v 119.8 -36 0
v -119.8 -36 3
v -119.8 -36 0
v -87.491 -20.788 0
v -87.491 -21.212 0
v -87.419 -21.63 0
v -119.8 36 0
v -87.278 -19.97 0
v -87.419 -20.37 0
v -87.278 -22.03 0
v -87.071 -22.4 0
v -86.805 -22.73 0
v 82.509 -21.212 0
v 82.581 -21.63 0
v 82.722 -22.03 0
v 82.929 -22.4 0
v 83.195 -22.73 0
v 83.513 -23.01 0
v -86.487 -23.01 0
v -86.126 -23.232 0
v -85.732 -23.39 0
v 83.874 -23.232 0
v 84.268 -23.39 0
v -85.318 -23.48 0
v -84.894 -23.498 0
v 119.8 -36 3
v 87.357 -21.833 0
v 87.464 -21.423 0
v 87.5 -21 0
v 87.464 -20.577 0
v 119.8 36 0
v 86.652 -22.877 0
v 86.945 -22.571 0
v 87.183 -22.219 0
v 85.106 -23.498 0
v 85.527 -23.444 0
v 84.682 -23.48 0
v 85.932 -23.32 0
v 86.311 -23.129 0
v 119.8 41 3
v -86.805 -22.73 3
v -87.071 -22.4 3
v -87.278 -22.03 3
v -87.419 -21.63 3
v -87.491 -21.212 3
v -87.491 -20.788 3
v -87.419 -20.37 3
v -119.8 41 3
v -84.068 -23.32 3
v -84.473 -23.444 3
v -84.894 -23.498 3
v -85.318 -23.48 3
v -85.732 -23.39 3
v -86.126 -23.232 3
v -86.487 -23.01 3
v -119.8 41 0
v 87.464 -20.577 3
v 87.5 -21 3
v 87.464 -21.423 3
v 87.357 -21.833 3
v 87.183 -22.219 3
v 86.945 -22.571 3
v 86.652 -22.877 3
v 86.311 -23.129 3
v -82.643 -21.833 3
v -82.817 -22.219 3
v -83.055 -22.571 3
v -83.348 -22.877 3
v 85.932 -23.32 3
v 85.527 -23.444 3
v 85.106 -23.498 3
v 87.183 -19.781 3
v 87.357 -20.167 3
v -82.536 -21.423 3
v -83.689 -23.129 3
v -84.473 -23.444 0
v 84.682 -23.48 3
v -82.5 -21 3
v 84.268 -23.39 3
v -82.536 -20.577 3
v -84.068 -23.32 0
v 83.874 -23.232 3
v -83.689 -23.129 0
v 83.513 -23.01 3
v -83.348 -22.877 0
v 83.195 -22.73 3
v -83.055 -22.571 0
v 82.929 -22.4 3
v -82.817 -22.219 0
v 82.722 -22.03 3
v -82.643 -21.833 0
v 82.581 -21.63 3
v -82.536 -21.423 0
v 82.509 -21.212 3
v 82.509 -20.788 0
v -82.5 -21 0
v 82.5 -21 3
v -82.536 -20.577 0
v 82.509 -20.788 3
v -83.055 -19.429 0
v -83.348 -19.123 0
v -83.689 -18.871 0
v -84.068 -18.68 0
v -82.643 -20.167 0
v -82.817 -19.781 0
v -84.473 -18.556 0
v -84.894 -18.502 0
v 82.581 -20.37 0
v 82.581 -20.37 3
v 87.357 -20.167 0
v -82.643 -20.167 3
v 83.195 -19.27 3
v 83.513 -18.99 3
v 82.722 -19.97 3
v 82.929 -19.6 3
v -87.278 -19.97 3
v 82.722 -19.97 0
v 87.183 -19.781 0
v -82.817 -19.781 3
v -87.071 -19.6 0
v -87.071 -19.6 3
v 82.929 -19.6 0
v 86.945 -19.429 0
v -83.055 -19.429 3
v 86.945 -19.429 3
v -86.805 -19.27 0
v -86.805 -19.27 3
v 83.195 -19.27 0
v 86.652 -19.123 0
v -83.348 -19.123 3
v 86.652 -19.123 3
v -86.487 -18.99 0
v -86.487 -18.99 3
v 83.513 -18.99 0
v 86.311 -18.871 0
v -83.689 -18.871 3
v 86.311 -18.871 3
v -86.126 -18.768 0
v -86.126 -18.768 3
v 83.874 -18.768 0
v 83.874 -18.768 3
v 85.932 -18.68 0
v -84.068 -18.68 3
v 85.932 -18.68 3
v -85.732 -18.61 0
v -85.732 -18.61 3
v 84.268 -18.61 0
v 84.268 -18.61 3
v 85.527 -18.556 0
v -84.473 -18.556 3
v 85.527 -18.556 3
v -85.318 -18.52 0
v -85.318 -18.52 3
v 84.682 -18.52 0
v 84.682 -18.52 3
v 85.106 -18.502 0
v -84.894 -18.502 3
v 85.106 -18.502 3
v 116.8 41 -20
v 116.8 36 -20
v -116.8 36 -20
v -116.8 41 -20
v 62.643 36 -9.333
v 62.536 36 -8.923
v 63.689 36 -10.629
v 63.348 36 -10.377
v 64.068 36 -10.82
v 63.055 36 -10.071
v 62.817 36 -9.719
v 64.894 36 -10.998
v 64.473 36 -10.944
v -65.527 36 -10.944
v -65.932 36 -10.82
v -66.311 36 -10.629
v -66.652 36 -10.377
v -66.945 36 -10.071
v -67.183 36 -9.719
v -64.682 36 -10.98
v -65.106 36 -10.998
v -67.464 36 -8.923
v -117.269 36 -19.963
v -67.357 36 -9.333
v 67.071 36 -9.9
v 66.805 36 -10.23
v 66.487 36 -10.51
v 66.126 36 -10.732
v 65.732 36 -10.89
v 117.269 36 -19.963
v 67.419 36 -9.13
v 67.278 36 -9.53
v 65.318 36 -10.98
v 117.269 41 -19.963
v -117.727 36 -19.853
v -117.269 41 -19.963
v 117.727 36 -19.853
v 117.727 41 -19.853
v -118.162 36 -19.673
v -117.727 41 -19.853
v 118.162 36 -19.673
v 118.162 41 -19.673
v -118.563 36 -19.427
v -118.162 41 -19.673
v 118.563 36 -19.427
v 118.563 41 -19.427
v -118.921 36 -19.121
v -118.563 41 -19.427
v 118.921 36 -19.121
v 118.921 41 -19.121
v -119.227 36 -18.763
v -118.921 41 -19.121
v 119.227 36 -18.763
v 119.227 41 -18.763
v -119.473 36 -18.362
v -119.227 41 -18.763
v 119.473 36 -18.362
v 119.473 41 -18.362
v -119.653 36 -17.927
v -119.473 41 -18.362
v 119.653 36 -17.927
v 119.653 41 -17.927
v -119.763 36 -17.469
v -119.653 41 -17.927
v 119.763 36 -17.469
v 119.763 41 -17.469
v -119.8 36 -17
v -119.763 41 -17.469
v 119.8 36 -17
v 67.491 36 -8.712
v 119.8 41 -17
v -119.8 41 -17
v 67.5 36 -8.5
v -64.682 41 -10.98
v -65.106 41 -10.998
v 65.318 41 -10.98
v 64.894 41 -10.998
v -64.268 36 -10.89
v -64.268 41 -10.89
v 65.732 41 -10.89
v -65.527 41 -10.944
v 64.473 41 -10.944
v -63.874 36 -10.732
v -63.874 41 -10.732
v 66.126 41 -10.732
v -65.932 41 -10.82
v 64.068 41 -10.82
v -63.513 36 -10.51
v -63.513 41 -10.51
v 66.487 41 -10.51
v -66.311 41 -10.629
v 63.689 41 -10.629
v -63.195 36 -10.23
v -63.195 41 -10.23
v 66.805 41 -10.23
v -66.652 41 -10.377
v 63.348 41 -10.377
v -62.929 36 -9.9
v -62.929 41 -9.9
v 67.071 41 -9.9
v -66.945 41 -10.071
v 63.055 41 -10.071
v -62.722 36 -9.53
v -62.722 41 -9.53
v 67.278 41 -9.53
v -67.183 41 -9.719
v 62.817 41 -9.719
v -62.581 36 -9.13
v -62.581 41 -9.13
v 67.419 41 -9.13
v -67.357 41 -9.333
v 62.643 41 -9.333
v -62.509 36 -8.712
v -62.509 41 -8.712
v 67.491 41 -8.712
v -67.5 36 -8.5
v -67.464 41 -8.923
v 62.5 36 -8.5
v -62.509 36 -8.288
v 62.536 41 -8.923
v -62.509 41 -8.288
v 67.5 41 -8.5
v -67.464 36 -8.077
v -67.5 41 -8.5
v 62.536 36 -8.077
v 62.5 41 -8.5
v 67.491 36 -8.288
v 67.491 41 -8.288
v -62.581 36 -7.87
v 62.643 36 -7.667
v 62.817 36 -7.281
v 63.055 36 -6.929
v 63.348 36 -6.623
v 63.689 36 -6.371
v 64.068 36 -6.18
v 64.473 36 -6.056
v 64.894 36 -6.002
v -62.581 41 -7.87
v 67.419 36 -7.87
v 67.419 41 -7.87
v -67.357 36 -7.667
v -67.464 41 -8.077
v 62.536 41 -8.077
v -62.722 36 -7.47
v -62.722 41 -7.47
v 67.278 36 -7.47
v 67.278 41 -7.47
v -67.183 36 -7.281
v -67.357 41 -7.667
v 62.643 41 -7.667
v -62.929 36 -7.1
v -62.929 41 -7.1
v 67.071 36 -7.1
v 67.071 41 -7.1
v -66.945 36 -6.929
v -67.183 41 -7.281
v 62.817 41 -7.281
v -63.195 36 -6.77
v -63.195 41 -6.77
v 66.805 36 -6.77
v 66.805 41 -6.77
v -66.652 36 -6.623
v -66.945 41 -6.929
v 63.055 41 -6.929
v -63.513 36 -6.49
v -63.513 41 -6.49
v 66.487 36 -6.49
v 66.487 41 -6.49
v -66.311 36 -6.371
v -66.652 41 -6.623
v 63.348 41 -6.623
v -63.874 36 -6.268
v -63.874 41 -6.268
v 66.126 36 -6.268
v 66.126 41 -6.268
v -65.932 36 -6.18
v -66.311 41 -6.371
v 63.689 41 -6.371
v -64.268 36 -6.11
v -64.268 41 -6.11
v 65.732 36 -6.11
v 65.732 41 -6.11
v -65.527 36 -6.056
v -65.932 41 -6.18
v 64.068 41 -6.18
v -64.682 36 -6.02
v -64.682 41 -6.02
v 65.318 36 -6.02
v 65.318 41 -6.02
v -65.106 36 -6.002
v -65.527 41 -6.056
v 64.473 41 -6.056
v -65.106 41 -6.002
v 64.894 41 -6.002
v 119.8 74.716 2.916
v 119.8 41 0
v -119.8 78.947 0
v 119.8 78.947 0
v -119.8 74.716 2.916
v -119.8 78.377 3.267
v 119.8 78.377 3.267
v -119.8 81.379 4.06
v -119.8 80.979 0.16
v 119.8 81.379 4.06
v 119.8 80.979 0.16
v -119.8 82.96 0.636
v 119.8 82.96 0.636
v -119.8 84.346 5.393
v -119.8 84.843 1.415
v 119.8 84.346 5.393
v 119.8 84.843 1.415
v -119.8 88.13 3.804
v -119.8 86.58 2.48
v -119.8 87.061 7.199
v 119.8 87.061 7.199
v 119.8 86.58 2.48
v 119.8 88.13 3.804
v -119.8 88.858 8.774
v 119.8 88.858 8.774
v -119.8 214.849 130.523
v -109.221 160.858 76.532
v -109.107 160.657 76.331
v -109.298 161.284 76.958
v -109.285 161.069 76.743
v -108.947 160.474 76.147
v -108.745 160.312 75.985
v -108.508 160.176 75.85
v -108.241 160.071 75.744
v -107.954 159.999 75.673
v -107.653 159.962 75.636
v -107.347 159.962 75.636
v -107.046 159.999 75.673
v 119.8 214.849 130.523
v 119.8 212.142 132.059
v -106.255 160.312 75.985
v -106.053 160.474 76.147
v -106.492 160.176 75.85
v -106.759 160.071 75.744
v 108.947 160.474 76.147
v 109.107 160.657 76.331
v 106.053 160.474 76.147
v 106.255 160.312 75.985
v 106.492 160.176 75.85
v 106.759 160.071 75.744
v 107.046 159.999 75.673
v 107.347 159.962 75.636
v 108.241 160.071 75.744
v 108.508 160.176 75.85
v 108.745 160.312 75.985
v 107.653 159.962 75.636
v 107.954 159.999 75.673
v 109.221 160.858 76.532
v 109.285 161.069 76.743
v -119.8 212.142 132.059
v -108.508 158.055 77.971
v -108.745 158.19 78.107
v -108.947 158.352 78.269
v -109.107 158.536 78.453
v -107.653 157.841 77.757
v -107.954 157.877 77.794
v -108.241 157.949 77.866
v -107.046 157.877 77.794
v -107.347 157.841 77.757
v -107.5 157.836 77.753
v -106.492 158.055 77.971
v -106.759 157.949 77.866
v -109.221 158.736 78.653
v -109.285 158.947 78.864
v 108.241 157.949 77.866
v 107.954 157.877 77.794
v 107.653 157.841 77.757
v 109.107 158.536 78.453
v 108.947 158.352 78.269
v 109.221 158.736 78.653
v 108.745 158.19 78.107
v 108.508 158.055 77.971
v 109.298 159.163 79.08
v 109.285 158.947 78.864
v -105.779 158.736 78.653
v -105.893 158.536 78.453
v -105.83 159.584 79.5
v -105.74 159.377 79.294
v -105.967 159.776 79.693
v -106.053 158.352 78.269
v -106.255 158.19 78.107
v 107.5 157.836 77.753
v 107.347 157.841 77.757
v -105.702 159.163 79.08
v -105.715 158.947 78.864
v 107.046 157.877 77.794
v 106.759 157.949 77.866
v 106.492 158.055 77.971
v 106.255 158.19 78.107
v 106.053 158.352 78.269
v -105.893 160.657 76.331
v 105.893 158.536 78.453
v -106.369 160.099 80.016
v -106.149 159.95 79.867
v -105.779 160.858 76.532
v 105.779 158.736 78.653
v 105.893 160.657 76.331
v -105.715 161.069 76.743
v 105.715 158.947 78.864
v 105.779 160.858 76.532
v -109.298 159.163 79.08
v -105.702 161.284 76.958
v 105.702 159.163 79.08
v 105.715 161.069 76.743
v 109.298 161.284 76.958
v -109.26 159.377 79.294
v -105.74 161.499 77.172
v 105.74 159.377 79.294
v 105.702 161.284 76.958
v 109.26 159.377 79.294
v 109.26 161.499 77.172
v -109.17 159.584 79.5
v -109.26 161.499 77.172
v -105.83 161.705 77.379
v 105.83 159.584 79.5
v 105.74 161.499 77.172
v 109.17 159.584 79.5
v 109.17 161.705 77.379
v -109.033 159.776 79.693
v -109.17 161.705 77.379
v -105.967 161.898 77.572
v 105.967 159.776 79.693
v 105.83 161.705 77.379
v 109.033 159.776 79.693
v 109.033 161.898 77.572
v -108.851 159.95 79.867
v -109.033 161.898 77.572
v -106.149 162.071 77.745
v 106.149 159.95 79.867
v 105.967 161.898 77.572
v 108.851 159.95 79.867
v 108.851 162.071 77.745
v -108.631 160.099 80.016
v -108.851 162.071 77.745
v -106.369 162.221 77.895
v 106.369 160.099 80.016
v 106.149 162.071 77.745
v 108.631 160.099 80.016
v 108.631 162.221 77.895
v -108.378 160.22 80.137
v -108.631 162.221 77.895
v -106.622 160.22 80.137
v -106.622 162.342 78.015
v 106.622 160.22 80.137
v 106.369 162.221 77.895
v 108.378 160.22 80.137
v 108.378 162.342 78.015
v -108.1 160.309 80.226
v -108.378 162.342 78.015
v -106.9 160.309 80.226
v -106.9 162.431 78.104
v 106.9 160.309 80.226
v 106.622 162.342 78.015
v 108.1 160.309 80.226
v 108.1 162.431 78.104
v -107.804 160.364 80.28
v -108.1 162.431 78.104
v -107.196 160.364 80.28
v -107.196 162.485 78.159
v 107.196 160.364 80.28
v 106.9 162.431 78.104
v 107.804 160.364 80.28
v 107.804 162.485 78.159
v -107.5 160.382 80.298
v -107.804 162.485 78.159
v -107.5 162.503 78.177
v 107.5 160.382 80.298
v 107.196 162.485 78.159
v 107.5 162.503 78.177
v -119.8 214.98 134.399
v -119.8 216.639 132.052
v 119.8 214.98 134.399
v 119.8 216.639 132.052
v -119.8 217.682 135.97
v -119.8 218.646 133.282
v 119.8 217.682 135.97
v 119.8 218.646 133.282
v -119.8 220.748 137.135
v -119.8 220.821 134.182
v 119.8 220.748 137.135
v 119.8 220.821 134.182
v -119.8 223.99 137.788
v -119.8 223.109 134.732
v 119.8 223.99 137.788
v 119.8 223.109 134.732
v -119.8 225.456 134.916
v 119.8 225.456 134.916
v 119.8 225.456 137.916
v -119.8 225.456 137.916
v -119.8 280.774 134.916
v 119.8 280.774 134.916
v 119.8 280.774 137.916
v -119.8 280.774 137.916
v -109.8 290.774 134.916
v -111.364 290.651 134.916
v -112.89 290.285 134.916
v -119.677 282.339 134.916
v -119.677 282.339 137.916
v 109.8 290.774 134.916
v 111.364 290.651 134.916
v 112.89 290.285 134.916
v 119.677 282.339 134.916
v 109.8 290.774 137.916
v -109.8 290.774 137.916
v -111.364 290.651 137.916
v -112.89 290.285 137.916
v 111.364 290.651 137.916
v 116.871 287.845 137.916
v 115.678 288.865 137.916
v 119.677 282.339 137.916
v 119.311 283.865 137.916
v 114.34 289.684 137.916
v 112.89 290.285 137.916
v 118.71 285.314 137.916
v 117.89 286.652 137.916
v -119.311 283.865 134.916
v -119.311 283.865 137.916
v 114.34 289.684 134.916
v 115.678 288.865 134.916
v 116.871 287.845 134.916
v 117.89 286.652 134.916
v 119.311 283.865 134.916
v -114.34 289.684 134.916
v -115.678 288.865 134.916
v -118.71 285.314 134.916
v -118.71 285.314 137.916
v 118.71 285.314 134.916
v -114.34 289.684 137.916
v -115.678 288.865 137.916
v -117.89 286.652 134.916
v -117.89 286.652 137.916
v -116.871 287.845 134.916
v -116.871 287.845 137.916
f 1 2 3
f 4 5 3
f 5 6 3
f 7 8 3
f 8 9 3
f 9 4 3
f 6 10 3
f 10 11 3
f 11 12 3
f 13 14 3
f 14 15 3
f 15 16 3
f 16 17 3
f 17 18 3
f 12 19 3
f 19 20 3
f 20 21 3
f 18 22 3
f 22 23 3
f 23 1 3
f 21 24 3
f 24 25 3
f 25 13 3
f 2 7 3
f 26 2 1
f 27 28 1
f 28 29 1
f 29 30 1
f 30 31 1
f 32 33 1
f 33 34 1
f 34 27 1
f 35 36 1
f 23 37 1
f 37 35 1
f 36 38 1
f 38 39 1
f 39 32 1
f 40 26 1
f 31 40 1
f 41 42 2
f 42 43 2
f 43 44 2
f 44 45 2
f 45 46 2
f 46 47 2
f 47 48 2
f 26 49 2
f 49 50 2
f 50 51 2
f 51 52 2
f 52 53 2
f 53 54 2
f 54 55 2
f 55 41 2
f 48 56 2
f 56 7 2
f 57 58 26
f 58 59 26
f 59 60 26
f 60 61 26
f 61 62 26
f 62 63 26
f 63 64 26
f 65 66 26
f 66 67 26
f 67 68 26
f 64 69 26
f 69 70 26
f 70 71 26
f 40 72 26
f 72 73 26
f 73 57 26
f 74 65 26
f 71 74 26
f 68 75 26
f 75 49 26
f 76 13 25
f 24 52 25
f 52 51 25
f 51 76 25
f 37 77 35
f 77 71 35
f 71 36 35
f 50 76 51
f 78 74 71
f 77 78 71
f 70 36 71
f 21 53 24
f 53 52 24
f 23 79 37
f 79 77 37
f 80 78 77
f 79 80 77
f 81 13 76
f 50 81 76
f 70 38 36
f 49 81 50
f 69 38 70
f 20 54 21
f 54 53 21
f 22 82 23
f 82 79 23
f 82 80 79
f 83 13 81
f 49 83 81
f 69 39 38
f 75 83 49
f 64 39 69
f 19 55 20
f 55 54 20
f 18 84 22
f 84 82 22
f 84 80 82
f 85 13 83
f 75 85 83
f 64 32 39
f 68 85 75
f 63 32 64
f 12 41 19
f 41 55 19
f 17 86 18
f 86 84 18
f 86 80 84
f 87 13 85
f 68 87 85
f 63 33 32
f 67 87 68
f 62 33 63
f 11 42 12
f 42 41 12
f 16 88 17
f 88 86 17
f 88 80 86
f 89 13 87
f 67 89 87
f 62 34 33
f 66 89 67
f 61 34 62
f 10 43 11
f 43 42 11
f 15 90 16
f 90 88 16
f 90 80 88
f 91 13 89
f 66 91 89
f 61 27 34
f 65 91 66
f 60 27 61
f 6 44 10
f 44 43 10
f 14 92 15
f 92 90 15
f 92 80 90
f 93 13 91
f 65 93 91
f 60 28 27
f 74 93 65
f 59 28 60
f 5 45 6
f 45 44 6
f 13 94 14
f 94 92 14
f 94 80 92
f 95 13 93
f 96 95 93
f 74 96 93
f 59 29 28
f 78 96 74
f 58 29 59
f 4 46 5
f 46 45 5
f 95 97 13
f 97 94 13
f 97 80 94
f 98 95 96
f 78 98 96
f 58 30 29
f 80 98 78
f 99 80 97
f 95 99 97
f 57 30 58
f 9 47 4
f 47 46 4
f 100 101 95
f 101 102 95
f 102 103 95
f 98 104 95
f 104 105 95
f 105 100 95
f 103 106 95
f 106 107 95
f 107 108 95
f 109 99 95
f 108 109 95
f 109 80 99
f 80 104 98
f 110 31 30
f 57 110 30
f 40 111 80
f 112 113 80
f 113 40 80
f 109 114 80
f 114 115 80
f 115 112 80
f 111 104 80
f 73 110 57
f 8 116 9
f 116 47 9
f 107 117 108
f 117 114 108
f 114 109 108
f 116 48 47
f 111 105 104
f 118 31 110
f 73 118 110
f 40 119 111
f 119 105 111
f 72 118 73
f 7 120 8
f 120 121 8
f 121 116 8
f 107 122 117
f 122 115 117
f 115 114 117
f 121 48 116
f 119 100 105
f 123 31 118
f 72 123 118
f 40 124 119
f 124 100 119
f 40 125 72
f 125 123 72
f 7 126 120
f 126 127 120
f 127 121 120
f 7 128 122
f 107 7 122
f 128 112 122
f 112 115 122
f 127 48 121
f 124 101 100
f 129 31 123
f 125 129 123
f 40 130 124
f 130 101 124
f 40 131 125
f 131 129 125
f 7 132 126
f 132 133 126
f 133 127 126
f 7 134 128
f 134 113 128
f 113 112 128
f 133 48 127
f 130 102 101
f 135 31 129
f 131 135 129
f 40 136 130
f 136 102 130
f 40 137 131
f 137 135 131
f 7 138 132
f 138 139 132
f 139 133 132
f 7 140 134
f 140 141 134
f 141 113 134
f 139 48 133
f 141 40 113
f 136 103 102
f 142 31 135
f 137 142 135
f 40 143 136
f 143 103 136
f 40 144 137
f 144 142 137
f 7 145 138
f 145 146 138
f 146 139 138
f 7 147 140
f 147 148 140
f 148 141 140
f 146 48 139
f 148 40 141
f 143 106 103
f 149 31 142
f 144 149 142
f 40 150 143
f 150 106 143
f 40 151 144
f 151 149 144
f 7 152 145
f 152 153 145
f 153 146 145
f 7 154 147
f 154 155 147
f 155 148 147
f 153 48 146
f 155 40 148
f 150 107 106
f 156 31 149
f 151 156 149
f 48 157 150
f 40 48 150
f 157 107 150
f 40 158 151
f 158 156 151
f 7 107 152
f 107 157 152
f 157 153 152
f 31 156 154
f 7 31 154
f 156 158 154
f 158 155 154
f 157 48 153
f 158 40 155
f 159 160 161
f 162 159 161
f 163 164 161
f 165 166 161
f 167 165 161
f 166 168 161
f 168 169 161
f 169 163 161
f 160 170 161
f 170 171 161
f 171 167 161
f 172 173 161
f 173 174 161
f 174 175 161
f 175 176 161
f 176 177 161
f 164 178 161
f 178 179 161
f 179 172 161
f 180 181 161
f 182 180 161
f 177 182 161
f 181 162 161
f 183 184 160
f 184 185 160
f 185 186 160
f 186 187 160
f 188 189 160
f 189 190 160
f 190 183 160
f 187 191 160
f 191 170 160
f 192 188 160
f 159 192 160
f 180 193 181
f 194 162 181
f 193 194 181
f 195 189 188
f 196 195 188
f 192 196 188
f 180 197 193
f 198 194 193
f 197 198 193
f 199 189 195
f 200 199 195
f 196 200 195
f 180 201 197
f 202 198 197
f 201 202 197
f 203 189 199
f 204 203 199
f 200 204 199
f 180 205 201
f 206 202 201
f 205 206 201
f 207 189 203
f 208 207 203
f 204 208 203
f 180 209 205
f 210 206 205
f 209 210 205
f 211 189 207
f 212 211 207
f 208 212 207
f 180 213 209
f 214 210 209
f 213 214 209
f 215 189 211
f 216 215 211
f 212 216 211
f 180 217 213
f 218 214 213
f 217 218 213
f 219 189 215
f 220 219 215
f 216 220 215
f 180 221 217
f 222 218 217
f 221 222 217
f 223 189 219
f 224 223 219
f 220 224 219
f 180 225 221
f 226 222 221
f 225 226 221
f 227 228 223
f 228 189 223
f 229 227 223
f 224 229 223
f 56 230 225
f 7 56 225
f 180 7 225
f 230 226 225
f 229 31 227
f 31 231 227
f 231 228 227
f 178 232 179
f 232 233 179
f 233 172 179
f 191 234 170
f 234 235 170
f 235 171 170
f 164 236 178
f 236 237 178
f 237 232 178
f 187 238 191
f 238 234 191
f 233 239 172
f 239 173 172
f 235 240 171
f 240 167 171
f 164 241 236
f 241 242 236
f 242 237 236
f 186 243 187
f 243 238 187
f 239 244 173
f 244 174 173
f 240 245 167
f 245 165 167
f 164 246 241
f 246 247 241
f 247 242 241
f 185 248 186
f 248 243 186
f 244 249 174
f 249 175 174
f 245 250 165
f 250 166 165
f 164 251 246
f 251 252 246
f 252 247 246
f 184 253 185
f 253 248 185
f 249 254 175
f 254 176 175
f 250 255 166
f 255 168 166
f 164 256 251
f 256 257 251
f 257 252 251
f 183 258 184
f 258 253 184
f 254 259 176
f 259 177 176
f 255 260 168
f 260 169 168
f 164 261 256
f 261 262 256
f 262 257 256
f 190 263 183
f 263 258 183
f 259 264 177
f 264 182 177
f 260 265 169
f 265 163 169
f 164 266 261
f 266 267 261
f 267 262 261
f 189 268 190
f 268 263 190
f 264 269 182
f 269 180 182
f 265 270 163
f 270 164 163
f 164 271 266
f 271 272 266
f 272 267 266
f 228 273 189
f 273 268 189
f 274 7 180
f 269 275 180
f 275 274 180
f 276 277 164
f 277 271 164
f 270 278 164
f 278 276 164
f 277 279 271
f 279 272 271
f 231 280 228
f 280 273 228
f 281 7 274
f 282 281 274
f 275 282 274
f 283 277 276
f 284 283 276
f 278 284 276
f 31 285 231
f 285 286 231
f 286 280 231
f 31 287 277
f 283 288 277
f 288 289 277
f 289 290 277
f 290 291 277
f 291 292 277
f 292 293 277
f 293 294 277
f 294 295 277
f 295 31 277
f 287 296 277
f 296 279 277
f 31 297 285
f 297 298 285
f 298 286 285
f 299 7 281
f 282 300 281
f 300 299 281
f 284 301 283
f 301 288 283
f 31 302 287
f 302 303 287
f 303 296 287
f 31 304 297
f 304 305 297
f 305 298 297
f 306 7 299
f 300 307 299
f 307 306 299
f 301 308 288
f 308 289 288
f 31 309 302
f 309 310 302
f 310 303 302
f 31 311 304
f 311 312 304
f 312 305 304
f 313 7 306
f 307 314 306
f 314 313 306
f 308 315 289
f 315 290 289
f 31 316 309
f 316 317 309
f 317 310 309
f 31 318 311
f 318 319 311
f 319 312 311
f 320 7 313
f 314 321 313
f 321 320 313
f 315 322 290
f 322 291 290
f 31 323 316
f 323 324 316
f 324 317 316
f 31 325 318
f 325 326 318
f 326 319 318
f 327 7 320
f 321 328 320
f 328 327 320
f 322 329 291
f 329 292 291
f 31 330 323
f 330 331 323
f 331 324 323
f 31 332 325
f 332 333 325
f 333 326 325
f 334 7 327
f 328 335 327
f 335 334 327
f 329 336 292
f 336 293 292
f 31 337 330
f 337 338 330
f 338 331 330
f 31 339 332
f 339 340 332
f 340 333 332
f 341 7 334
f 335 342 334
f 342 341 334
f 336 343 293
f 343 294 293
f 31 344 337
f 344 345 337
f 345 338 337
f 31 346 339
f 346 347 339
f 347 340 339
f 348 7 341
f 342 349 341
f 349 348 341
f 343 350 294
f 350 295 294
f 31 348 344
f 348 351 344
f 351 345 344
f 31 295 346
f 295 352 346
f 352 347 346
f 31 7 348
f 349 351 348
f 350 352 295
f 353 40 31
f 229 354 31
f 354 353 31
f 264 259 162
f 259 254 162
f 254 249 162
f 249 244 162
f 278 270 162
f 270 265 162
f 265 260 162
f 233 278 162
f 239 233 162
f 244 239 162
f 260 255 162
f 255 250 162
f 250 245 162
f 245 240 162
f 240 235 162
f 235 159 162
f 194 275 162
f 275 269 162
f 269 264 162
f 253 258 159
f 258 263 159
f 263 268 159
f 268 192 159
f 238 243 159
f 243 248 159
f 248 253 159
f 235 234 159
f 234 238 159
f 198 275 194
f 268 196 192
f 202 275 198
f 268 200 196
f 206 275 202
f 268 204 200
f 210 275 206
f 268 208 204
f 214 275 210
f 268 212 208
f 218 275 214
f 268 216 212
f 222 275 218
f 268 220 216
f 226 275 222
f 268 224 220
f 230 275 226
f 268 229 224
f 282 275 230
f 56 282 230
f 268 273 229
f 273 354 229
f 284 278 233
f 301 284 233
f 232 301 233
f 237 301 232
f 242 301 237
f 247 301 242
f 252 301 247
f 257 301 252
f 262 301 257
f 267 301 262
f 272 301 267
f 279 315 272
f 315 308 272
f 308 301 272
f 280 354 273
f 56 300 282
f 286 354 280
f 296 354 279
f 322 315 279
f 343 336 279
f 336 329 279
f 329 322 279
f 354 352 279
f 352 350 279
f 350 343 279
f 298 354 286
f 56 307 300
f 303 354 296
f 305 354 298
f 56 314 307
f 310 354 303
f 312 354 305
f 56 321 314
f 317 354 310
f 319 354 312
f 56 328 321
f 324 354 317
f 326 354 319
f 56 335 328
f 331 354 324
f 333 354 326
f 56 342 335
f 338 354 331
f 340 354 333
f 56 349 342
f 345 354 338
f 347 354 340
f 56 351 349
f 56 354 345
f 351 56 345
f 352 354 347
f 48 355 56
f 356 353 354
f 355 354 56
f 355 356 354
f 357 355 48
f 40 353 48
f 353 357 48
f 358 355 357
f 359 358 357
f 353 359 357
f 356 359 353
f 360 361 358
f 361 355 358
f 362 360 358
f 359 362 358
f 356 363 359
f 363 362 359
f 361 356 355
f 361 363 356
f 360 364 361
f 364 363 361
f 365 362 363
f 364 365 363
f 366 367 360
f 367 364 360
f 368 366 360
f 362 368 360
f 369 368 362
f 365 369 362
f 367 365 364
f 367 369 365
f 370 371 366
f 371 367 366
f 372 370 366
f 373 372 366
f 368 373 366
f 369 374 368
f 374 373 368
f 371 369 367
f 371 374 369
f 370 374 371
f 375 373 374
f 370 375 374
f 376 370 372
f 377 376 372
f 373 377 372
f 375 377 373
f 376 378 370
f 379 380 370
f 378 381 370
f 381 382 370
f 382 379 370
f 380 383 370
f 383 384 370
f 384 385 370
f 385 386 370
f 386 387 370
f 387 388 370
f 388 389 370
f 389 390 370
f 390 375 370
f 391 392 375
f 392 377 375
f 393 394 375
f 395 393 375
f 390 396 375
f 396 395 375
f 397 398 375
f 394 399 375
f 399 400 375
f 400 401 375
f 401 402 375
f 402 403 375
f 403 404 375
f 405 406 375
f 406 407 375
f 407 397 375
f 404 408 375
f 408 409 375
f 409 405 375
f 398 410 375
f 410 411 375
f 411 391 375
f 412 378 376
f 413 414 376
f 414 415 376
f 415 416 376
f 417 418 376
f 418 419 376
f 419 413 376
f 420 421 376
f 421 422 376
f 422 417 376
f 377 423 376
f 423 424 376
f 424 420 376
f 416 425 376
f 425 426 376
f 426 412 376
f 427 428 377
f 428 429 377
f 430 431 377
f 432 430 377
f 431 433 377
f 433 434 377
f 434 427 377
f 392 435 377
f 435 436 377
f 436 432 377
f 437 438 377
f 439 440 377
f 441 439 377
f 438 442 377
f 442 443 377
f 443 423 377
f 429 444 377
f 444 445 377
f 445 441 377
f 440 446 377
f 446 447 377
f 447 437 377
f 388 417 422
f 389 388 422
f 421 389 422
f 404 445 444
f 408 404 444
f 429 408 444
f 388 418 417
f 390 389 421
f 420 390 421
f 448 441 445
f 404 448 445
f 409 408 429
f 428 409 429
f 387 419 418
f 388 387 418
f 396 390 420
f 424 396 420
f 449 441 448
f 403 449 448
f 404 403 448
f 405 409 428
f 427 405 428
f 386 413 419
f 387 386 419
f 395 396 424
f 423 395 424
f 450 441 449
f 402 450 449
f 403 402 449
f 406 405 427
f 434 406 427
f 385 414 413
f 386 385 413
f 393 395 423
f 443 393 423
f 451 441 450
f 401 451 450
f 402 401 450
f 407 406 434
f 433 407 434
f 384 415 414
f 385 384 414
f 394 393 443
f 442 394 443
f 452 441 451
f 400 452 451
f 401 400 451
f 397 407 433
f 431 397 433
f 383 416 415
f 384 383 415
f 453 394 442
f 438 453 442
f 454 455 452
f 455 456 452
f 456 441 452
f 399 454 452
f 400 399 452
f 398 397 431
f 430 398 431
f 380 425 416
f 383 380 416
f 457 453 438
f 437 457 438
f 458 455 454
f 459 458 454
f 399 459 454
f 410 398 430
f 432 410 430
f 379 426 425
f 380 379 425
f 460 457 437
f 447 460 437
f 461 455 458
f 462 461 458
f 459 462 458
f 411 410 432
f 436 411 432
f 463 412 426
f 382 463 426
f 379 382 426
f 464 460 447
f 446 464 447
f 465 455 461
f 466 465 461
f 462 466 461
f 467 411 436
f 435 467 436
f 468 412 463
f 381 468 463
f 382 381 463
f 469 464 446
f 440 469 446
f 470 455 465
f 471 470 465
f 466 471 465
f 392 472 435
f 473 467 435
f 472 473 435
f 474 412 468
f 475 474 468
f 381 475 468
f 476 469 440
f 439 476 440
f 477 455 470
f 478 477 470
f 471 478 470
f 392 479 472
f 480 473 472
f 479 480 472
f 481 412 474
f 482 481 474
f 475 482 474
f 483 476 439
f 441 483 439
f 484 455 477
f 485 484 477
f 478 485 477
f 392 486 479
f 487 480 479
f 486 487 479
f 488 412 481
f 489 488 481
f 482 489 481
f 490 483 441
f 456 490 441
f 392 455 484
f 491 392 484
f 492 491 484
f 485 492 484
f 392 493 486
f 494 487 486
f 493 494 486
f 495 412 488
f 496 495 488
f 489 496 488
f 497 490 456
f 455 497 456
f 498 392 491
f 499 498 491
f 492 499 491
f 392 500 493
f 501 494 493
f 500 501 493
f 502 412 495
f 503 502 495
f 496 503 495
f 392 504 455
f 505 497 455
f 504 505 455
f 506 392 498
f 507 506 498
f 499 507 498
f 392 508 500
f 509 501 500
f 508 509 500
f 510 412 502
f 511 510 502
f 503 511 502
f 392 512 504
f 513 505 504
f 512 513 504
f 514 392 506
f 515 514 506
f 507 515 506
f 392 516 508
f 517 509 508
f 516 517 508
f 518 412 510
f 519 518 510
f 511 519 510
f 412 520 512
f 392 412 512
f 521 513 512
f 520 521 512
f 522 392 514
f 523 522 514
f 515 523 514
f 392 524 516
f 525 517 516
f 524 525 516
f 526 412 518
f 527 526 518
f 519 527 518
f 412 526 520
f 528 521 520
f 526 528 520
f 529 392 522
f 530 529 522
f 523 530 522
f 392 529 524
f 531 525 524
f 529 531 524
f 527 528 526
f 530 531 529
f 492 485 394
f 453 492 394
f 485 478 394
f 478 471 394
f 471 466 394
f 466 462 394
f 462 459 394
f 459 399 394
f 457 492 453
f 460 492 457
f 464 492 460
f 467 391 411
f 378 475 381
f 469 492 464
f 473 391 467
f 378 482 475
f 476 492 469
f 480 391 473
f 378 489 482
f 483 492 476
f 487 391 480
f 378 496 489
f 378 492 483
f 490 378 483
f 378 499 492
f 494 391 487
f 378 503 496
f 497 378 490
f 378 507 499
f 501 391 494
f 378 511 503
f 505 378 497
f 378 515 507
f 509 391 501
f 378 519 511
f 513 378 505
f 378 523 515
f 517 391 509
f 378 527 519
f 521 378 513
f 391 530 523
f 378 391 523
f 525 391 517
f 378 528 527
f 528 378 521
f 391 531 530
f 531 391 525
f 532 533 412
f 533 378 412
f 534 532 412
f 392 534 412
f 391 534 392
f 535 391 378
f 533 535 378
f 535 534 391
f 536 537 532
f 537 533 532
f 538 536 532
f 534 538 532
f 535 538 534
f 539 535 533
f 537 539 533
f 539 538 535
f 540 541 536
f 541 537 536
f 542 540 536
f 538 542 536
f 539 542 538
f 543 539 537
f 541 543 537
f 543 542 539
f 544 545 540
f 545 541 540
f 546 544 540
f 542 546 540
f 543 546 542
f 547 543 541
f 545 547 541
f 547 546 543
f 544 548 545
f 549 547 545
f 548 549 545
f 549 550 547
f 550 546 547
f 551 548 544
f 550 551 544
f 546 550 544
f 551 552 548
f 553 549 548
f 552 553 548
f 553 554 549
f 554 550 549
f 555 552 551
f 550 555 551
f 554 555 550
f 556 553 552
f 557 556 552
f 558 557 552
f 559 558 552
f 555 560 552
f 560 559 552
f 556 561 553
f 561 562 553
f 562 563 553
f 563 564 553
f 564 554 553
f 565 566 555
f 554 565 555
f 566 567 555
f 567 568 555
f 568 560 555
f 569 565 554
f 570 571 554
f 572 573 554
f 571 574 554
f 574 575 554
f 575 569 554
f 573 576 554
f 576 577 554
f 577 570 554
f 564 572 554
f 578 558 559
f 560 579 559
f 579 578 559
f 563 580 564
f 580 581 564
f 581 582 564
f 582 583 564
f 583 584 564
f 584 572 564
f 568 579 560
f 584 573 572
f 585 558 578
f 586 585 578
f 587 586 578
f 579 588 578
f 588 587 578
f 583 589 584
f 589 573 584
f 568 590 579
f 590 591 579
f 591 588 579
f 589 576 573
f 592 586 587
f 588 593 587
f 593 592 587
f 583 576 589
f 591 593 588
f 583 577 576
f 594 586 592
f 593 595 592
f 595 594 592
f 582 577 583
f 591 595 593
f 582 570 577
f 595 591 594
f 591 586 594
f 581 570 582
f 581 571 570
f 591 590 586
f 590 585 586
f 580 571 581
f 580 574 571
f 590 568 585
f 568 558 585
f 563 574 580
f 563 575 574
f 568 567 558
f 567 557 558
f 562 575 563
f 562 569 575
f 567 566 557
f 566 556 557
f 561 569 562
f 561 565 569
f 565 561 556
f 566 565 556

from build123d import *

# Parameters (mm, degrees)
SKETCH1_W           = 250
SKETCH1_H           = 72
BOSS_EXTRUDE1_DEPTH = 3
SKETCH2_W           = 239.6
SKETCH2_H           = 23
BOSS_EXTRUDE2_DEPTH = 5
SKETCH3_R           = 2.5
CUT_EXTRUDE1_DEPTH  = 5
FILLET1_R           = 3
SKETCH4_R           = 2.5
CUT_EXTRUDE2_DEPTH  = 5
SKETCH6_W           = 5.2
SKETCH6_H           = 72
CUT_EXTRUDE3_DEPTH  = 5
BOSS_EXTRUDE3_DEPTH = 239.6
SKETCH8_W           = 239.6
SKETCH8_H           = 3
BOSS_EXTRUDE4_DEPTH = 3
FILLET3_R           = 10
SKETCH10_R          = 1.8
CUT_EXTRUDE5_DEPTH  = 5


with BuildPart() as part:
    # Sketch1 → Boss-Extrude1 (new body)
    with BuildSketch(Plane.XY):
        Rectangle(SKETCH1_W, SKETCH1_H)
    extrude(amount=BOSS_EXTRUDE1_DEPTH)

    # Sketch2 → Boss-Extrude2 (add)
    with BuildSketch(Plane(origin=(0, 36, 0), x_dir=(1, 0, 0), z_dir=(0, 1, 0))):
        with Locations((0, 8.5)):
            Rectangle(SKETCH2_W, SKETCH2_H)
    extrude(amount=BOSS_EXTRUDE2_DEPTH)

    # Sketch3 → Cut-Extrude1 (cut)
    with BuildSketch(Plane(origin=(0, 41, 0), x_dir=(1, 0, 0), z_dir=(0, 1, 0))):
        with Locations(Location((-65, 8.5, 0), (0, 0, 180))):
            Circle(SKETCH3_R)
        with Locations((65, 8.5)):
            Circle(SKETCH3_R)
    extrude(amount=-CUT_EXTRUDE1_DEPTH, mode=Mode.SUBTRACT)

    # Fillet1
    fillet1_edges = [part.edges().sort_by_distance(p)[0] for p in [
        (-119.8, 38.5, -20),
        (119.8, 38.5, -20),
    ]]
    fillet(fillet1_edges, radius=FILLET1_R)

    # Sketch4 → Cut-Extrude2 (cut)
    with BuildSketch(Plane.XY.offset(3)):
        with Locations((-85, -21)):
            Circle(SKETCH4_R)
        with Locations((85, -21)):
            Circle(SKETCH4_R)
    extrude(amount=-CUT_EXTRUDE2_DEPTH, mode=Mode.SUBTRACT)

    # Sketch6 → Cut-Extrude3 (cut)
    with BuildSketch(Plane.XY.offset(3)):
        with Locations((-122.4, 0)):
            Rectangle(SKETCH6_W, SKETCH6_H)
        with Locations((122.4, 0)):
            Rectangle(SKETCH6_W, SKETCH6_H)
    extrude(amount=-CUT_EXTRUDE3_DEPTH, mode=Mode.SUBTRACT)

    # Sketch7 → Boss-Extrude3 (add)
    with BuildSketch(Plane.ZY.offset(119.8)):
        with BuildLine():
            Line((0, 41), (3, 41))
            Line((3, 41), (2.916490723, 74.715728753))
            add(Edge.make_bspline(
                [(2.916490723, 74.715728753), (3.032377234, 82.951998235), (8.774355099, 88.857864376)],
                knots=[0, 0, 0, 1, 1, 1], degree=2))
            Line((8.774355099, 88.857864376), (132.058626347, 212.142135624))
            add(Edge.make_bspline(
                [(132.058626347, 212.142135624), (137.487179548, 217.729604737), (137.916490723, 225.455844123)],
                knots=[0, 0, 0, 1, 1, 1], degree=2))
            Line((137.916490723, 225.455844123), (137.916490723, 287.774355099))
            Line((137.916490723, 287.774355099), (134.916490723, 287.774355099))
            Line((134.916490723, 287.774355099), (134.916490723, 225.455844123))
            ThreePointArc((134.916490723, 225.455844123), (133.774683711, 219.715592637), (130.523092441, 214.849242405))
            Line((130.523092441, 214.849242405), (3.803620061, 88.129770025))
            ThreePointArc((3.803620061, 88.129770025), (0.988528647, 83.916687992), (0, 78.947018888))
            Line((0, 78.947018888), (0, 41))
        make_face()
    extrude(amount=-BOSS_EXTRUDE3_DEPTH)

    # Sketch8 → Boss-Extrude4 (add)
    with BuildSketch(Plane.XY.offset(137.916490723)):
        with Locations((0, 289.274355099)):
            Rectangle(SKETCH8_W, SKETCH8_H)
    extrude(amount=-BOSS_EXTRUDE4_DEPTH)

    # Fillet3
    fillet3_edges = [part.edges().sort_by_distance(p)[0] for p in [
        (-119.8, 290.774355099, 136.416490723),
        (119.8, 290.774355099, 136.416490723),
    ]]
    fillet(fillet3_edges, radius=FILLET3_R)

    # Sketch10 → Cut-Extrude5 (cut)
    with BuildSketch(Plane(origin=(0, 42.163074982, -42.163074982), x_dir=(1, 0, 0), z_dir=(0, 0.7071067811865429, -0.7071067811865522))):
        with Locations(Location((107.5, -168.386692879, 0), (0, 0, 270))):
            Circle(SKETCH10_R)
        with Locations(Location((-107.5, -168.386692879, 0), (0, 0, 270))):
            Circle(SKETCH10_R)
    extrude(amount=-CUT_EXTRUDE5_DEPTH, mode=Mode.SUBTRACT)


solid = part.part
